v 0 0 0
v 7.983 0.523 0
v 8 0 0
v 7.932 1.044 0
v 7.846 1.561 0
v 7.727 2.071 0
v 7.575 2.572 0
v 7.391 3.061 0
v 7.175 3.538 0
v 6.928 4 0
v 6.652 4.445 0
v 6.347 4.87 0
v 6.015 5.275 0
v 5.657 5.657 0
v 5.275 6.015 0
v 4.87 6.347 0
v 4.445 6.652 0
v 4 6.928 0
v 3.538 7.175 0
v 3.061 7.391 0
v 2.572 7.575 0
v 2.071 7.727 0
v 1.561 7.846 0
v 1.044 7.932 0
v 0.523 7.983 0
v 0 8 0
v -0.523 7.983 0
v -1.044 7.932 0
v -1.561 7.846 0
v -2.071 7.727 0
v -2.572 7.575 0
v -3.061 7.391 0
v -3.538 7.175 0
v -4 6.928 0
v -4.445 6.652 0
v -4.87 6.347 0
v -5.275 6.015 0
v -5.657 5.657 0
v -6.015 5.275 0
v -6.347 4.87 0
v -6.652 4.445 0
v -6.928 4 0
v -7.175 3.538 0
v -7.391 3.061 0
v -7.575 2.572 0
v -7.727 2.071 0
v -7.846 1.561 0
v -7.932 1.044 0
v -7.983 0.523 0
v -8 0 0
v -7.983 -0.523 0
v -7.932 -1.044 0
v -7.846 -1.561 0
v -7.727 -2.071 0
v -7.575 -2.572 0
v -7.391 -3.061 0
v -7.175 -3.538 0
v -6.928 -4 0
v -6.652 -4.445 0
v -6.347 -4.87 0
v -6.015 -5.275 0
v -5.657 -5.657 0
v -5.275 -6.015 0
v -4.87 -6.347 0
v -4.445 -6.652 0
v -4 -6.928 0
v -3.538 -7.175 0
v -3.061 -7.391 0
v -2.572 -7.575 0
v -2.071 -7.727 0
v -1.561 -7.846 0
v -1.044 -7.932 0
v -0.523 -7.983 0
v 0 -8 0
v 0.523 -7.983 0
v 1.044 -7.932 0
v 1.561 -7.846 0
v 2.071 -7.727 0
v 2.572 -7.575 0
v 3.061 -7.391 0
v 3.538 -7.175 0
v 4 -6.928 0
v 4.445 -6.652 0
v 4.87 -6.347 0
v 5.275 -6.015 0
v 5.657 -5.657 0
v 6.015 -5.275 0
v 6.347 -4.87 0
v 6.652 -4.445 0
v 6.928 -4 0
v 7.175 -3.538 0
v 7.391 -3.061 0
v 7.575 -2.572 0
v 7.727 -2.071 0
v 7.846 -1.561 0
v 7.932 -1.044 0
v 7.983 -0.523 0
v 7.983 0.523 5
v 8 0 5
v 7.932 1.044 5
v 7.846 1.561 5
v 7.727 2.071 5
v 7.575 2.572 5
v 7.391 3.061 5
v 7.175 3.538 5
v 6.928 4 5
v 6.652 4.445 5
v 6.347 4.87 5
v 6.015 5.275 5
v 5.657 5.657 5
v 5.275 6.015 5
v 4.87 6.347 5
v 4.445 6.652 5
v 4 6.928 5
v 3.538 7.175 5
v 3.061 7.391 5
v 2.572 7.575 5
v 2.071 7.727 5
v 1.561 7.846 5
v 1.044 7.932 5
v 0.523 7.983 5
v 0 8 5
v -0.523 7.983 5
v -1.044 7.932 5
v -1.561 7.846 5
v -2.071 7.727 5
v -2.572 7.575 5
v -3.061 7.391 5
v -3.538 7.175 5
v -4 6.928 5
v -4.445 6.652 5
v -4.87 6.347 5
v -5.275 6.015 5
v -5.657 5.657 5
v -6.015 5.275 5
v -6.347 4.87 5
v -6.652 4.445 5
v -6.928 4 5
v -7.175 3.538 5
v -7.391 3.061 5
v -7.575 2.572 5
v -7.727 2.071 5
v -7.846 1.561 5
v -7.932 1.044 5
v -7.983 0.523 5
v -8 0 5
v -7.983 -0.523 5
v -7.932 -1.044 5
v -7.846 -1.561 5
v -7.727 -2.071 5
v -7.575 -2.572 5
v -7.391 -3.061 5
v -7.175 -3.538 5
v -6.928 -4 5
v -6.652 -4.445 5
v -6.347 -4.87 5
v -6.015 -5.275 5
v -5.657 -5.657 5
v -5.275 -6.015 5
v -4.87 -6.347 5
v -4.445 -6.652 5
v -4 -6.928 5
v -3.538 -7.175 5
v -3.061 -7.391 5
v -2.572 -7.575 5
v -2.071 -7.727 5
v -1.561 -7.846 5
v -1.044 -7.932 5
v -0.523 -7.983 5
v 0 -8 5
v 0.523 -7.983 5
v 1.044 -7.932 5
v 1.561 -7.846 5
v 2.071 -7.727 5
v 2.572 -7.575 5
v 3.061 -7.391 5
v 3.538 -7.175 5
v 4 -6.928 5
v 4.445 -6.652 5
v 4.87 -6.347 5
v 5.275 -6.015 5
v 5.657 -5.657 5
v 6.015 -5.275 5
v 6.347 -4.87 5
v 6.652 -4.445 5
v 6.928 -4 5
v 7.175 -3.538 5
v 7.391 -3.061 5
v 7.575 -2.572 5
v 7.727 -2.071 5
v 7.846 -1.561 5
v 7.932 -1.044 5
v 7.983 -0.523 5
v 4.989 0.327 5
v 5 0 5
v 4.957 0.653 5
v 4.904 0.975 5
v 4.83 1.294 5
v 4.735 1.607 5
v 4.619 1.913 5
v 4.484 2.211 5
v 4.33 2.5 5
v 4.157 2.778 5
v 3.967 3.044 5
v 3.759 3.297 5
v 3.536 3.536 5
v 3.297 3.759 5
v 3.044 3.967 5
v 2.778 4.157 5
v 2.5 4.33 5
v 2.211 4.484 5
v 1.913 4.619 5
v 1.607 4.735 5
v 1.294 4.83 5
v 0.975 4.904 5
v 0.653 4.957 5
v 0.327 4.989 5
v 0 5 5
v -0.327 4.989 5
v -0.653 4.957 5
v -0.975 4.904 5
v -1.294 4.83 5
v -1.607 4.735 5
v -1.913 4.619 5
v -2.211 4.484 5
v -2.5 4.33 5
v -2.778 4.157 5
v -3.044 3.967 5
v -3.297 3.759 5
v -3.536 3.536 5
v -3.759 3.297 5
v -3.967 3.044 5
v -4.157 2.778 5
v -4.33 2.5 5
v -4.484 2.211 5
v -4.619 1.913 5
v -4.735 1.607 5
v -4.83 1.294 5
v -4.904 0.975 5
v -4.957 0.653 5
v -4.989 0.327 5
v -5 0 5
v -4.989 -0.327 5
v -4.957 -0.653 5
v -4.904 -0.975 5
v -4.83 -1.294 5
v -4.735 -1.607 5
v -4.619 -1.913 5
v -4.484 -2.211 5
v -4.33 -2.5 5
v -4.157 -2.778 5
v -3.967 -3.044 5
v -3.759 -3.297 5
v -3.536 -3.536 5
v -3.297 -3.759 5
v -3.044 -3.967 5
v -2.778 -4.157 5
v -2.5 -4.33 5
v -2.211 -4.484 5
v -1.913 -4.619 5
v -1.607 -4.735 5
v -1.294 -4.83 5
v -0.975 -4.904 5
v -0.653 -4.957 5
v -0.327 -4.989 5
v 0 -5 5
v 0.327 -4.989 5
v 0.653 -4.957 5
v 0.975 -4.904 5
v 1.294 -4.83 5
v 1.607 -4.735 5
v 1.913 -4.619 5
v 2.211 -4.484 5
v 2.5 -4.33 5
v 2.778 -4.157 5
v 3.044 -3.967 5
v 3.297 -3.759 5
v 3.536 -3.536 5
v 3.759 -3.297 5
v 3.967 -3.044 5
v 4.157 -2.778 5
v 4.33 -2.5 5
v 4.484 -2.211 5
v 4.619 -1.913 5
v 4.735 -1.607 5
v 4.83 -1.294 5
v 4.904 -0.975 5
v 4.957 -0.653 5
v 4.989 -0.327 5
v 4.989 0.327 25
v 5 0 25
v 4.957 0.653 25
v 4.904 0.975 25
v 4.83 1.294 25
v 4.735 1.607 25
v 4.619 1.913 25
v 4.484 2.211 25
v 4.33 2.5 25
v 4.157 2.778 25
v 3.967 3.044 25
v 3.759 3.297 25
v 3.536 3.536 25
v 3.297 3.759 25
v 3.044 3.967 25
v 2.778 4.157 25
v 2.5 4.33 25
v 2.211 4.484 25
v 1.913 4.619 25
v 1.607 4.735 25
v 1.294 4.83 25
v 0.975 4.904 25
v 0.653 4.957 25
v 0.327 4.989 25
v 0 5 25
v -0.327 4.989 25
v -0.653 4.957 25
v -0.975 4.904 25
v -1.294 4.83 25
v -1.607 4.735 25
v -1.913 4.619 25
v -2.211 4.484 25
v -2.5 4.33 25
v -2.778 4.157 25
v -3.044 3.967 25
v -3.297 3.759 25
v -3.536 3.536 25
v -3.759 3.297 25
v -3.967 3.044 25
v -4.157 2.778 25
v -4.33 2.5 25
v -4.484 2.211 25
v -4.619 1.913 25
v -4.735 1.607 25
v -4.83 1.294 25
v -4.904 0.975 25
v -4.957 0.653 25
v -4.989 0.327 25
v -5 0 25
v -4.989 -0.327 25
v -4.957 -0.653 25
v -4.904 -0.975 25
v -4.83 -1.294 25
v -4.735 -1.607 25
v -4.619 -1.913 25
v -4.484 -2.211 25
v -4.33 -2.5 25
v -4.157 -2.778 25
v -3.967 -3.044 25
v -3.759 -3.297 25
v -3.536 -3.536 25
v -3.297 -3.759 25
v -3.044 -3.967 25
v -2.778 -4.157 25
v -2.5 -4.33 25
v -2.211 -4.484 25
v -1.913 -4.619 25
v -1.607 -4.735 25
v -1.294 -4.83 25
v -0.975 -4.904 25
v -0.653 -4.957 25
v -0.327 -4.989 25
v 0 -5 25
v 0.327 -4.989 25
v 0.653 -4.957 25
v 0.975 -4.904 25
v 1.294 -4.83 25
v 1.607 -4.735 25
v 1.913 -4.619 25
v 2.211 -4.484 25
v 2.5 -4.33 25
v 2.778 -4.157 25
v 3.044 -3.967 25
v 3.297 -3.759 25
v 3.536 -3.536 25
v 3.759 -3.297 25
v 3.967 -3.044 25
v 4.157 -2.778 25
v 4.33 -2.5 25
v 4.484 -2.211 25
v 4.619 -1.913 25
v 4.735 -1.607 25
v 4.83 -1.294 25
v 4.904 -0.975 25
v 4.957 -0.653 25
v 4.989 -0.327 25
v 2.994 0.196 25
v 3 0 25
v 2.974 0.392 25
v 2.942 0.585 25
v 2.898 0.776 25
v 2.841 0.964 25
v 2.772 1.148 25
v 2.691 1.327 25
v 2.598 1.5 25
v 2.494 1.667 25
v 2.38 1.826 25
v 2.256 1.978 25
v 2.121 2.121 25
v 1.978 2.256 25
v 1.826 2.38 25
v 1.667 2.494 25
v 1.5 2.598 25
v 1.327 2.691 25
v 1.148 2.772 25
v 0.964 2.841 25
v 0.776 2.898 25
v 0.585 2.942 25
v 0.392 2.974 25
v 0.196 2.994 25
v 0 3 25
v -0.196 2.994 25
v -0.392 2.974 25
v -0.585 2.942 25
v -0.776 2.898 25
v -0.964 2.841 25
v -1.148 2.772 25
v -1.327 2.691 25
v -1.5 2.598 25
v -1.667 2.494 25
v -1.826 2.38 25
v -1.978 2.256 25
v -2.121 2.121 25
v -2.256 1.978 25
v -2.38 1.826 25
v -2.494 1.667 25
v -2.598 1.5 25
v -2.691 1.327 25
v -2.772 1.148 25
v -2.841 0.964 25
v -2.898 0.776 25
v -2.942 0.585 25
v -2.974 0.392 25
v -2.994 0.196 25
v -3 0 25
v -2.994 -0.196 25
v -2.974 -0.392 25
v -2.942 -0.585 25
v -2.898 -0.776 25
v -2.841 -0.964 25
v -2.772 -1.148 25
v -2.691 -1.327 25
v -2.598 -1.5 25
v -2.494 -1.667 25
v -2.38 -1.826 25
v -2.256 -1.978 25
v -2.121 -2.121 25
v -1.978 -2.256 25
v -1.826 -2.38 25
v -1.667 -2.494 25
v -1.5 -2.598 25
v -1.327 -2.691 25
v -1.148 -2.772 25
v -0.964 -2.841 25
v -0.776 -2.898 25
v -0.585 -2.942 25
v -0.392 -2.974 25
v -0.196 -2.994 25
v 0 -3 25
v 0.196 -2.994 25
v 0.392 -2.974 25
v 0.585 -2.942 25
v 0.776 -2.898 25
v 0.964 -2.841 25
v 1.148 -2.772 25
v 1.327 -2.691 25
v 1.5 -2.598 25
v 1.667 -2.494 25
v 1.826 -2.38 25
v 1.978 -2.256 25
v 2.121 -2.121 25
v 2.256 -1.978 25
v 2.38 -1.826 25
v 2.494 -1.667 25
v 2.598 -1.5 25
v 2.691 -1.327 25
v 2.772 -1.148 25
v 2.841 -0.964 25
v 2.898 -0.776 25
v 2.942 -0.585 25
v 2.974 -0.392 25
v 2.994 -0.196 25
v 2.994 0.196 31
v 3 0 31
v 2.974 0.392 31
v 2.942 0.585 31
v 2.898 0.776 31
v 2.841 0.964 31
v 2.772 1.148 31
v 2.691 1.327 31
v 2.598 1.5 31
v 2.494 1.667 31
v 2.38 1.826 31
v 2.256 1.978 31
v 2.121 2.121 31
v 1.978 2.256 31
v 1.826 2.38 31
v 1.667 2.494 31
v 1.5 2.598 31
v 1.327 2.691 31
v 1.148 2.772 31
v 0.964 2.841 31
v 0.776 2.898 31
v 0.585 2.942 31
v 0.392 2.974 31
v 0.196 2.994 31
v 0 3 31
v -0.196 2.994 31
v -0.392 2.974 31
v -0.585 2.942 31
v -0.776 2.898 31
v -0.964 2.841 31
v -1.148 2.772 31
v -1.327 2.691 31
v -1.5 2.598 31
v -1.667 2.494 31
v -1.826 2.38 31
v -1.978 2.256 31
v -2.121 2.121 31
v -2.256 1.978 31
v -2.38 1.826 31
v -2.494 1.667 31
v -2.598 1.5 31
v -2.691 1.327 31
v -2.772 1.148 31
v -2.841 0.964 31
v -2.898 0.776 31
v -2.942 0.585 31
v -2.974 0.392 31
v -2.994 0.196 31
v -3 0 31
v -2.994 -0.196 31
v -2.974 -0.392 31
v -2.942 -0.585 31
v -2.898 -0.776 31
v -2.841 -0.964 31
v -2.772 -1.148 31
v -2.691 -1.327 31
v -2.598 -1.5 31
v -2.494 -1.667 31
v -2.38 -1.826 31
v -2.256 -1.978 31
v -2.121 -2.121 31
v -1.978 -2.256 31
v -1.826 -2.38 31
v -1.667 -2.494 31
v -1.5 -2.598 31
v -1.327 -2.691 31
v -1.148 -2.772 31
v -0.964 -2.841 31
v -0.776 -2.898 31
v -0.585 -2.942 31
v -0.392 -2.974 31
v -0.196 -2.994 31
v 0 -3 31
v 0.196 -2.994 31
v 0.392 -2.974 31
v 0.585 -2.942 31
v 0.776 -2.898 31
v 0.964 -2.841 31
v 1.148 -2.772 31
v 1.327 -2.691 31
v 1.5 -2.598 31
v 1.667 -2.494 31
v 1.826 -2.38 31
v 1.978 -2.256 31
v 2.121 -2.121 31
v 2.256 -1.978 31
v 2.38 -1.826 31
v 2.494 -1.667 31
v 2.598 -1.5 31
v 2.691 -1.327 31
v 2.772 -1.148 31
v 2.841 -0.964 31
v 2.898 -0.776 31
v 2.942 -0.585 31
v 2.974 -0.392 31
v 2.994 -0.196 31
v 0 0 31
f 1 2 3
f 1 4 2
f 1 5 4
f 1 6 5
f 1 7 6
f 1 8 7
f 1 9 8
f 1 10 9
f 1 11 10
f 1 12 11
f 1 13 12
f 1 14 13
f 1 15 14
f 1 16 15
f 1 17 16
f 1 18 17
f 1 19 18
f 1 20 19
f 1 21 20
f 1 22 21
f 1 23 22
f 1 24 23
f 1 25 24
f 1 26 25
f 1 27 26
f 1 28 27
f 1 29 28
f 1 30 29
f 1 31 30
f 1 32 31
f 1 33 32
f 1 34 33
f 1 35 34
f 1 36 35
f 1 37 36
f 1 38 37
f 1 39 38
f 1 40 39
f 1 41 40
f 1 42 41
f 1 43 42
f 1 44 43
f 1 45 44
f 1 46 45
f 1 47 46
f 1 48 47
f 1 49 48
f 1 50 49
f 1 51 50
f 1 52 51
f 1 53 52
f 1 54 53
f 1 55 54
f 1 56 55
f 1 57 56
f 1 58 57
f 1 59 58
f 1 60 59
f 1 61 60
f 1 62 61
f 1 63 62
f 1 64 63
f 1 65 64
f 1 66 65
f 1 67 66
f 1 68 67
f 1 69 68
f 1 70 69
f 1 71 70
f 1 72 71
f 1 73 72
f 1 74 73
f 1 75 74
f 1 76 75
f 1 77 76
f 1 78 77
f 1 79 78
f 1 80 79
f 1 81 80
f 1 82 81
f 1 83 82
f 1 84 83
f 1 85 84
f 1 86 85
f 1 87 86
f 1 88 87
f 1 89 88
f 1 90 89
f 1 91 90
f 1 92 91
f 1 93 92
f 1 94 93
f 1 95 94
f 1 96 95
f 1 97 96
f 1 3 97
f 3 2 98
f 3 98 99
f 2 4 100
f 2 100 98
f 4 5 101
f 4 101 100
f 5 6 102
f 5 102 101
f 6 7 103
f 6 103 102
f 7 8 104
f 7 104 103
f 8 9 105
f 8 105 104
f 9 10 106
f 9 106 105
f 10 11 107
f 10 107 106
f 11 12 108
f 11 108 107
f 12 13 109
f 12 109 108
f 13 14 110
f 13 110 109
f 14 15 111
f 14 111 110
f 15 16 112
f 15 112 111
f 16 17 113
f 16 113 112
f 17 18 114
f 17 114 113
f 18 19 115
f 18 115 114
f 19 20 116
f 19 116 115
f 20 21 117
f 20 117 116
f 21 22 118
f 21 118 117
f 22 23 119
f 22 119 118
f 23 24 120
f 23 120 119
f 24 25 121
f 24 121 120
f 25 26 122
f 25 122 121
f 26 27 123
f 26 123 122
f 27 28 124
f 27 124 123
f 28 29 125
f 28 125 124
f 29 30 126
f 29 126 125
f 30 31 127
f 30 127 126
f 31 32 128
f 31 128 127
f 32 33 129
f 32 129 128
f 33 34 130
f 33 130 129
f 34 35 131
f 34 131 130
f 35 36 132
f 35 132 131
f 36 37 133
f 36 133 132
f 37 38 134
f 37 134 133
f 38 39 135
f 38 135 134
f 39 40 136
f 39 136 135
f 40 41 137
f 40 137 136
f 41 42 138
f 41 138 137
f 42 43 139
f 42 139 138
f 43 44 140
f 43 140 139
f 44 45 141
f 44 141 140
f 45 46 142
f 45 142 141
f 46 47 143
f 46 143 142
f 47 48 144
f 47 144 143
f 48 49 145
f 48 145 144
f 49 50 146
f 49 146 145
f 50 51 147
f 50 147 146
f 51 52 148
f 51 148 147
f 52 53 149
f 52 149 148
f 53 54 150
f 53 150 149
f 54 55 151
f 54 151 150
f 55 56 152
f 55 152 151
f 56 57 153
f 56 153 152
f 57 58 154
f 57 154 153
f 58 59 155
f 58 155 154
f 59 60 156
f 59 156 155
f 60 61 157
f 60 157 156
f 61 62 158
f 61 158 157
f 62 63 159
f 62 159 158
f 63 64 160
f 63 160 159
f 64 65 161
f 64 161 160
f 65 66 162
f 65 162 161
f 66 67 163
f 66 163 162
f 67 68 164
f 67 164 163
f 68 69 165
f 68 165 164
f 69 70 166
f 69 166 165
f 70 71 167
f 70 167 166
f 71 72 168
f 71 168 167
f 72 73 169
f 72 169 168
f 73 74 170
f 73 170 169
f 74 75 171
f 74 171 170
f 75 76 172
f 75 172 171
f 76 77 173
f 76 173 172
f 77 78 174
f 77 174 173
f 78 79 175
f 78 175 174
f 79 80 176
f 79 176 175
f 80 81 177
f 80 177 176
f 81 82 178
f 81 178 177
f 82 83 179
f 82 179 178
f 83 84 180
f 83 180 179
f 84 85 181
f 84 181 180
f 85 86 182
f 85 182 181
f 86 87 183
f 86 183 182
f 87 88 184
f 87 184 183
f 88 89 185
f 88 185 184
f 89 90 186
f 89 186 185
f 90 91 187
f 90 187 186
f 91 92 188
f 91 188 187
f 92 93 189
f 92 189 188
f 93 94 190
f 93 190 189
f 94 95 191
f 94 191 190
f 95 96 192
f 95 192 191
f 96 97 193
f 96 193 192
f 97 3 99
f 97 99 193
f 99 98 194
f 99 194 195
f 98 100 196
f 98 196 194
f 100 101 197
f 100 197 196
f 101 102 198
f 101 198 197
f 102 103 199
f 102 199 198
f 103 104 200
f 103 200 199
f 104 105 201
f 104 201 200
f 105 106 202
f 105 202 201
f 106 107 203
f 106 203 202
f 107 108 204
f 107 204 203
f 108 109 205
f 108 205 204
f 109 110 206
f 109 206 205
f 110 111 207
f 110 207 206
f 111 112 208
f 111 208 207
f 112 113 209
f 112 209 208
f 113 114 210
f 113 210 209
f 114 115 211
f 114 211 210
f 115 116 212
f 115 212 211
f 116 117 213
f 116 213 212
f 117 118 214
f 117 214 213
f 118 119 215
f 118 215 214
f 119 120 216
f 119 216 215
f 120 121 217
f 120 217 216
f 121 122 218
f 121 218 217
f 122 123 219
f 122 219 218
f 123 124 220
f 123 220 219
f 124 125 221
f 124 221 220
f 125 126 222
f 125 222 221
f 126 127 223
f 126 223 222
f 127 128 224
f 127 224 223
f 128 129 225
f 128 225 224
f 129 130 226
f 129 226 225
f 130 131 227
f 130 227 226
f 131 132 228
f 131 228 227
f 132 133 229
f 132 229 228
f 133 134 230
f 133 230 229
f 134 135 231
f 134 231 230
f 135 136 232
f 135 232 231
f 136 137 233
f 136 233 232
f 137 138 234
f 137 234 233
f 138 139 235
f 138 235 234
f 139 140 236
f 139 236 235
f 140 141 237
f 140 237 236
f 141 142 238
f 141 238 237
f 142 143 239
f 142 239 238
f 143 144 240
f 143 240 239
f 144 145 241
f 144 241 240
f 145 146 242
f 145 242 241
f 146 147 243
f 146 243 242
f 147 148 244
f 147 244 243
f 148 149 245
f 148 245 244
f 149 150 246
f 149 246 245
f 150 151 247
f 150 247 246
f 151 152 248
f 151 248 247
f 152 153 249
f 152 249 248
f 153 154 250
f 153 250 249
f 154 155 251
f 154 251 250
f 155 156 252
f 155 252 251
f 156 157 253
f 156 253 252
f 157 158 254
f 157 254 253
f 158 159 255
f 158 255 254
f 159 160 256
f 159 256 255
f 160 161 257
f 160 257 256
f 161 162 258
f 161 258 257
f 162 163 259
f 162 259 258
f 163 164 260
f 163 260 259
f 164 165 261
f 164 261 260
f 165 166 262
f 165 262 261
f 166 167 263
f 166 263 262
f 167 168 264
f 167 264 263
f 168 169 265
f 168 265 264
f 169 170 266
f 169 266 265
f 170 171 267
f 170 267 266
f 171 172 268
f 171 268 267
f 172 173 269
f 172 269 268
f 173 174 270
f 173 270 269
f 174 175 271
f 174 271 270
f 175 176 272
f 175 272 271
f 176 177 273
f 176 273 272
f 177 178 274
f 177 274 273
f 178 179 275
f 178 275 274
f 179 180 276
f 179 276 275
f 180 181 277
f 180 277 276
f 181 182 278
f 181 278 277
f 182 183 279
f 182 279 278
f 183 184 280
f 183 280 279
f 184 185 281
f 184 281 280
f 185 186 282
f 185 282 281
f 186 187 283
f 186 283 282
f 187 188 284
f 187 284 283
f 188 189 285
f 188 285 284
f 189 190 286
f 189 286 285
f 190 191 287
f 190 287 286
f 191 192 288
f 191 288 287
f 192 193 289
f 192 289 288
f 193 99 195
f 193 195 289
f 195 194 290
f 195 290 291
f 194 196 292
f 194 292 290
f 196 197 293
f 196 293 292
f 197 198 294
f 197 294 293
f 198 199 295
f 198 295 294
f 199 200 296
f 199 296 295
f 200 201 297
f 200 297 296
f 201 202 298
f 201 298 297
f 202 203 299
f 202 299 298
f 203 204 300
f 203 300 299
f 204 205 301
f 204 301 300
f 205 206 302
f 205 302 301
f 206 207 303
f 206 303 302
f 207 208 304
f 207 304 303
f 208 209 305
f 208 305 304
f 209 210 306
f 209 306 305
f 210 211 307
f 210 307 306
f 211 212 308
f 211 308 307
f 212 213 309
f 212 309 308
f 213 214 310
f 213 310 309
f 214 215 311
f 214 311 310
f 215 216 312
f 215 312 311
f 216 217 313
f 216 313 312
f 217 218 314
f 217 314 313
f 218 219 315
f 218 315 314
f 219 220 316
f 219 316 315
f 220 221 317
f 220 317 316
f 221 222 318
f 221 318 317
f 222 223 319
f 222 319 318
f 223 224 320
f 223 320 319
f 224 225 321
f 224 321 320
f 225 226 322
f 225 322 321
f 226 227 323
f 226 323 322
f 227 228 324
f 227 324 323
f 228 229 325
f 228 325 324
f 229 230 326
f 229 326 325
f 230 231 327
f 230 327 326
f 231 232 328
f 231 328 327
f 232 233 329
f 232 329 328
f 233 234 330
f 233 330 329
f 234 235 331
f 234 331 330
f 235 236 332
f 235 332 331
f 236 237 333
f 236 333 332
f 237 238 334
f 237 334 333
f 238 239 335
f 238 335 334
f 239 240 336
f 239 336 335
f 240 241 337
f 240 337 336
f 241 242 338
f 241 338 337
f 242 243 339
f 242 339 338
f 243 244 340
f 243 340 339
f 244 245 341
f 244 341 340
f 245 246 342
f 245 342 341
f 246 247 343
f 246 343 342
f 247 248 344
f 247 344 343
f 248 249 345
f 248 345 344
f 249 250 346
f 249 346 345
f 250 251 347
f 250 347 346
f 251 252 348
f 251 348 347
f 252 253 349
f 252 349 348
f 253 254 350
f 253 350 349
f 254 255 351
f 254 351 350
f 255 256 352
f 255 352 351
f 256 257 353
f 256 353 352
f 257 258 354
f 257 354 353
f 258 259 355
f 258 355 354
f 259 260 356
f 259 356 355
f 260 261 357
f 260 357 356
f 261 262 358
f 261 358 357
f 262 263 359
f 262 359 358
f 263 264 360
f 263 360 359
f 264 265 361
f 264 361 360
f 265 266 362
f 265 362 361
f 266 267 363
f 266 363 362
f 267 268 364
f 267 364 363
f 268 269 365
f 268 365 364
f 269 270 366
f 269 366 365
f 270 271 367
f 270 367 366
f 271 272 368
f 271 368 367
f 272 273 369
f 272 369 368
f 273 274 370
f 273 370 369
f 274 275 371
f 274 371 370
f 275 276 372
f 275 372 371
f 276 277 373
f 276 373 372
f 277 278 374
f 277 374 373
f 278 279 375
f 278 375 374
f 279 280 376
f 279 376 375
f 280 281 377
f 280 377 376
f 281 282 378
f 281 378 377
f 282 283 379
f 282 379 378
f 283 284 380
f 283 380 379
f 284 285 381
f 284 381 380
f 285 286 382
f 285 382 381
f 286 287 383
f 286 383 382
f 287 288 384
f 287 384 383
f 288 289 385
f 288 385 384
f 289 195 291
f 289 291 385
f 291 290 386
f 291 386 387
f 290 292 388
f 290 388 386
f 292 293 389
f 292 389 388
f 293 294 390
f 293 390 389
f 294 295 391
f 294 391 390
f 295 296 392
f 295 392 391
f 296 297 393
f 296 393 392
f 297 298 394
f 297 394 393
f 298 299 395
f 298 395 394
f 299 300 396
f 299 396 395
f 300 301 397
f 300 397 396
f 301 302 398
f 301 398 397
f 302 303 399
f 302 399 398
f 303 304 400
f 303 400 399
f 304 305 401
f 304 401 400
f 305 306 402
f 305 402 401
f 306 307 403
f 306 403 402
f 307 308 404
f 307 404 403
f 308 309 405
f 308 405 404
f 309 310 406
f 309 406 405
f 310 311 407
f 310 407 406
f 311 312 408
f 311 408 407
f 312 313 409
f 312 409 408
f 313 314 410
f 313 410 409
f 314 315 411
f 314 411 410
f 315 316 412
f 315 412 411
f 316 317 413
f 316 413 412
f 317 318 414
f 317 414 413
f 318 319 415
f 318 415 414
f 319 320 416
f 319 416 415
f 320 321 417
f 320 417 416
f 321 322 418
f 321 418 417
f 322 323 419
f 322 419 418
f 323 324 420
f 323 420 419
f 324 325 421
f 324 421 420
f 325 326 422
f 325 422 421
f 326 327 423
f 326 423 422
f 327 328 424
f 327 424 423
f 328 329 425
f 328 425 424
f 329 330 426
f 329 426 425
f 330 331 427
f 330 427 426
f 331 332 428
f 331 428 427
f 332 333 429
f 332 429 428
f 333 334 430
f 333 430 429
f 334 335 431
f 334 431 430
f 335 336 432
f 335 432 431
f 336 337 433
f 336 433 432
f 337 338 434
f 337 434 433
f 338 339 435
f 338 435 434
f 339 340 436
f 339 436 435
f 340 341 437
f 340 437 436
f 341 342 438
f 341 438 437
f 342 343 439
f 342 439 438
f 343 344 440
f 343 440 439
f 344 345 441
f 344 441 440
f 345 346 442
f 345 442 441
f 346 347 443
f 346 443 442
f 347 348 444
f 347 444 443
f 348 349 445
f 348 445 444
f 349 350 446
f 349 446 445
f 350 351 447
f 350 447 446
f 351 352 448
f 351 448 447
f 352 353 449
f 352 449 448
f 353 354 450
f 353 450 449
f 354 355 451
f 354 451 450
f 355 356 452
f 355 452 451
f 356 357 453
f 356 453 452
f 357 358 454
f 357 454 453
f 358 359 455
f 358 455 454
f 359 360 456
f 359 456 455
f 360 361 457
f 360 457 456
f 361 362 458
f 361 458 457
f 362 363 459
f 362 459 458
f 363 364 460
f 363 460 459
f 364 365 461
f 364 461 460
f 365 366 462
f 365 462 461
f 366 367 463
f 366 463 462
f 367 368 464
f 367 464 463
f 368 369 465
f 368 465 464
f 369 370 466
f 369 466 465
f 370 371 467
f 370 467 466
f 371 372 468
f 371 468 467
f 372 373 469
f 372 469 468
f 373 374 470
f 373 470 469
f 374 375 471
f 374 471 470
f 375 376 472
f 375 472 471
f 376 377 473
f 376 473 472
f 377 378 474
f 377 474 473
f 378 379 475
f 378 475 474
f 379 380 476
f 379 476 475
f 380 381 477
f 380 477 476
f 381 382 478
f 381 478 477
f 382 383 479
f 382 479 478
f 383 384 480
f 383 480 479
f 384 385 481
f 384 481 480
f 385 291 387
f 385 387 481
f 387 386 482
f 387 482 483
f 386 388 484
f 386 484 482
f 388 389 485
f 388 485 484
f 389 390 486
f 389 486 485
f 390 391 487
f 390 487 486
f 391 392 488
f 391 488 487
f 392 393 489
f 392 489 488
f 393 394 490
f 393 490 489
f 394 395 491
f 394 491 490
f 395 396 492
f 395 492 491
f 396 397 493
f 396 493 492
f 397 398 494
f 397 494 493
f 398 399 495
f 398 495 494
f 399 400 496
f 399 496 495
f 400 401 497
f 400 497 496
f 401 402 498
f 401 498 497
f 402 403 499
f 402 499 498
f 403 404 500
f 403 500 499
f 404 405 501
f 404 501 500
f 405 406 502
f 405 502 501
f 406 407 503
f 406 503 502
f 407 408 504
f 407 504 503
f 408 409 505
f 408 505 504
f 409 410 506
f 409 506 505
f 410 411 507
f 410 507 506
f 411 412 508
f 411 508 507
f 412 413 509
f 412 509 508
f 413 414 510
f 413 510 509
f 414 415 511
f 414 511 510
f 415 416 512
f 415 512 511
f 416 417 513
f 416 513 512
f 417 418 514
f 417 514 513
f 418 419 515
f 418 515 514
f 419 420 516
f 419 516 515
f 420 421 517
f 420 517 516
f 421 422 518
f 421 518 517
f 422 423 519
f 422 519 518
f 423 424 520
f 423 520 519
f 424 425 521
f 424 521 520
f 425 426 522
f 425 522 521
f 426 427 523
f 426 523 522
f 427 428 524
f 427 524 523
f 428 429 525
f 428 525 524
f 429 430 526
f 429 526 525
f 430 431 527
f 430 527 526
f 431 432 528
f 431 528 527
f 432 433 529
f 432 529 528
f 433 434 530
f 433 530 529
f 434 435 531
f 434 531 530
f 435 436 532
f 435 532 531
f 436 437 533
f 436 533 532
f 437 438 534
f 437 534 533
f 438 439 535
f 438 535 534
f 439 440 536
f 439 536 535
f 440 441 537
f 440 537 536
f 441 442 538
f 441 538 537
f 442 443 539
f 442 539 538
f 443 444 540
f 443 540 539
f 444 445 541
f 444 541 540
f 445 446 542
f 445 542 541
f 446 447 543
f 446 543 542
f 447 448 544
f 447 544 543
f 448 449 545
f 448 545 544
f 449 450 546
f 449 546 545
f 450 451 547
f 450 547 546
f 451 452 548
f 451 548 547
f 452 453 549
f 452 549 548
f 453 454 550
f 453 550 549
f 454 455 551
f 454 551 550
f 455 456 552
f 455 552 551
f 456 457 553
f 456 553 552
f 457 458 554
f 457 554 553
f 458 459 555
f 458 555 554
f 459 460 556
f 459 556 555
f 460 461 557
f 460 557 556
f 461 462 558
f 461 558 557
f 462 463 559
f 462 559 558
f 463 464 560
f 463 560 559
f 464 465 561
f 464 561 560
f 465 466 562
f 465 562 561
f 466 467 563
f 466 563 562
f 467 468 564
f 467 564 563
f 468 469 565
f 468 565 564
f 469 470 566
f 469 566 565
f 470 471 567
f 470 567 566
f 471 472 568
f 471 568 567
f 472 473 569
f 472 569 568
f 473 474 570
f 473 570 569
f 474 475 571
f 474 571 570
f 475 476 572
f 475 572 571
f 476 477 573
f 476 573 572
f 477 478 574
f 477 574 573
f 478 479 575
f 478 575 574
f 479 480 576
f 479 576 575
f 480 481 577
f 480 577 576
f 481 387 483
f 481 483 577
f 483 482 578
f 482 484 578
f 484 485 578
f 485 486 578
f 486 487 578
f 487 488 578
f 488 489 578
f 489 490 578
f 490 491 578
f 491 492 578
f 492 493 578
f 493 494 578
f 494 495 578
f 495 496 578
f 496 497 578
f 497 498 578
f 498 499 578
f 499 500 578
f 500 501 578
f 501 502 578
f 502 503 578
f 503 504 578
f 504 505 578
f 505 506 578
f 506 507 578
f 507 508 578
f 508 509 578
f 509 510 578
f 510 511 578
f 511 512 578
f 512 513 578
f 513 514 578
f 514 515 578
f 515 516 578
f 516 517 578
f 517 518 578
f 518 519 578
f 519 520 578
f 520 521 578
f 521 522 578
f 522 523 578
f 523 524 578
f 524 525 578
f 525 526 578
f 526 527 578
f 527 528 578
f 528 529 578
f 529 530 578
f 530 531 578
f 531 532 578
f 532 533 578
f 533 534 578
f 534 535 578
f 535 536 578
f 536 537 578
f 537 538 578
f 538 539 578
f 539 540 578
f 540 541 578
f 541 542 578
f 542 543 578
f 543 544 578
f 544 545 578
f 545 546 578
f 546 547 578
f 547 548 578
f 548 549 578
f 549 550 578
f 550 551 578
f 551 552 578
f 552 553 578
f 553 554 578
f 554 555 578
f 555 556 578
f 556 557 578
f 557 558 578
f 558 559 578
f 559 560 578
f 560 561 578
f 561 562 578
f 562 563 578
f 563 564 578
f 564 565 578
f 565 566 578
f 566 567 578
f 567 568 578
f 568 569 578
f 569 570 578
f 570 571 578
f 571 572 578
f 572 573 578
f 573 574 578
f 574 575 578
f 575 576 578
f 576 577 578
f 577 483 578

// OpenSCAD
// Original MechIntel educational model. CC0-1.0. Units: mm.
// Not a standardized or load-rated component.
$fn=96;
// Section points: [radius, height], mm. Edit to change the profile.
section=[[0, 0], [8, 0], [8, 5], [5, 5], [5, 25], [3, 25], [3, 31], [0, 31]];
rotate_extrude($fn=96) polygon(points=section);
